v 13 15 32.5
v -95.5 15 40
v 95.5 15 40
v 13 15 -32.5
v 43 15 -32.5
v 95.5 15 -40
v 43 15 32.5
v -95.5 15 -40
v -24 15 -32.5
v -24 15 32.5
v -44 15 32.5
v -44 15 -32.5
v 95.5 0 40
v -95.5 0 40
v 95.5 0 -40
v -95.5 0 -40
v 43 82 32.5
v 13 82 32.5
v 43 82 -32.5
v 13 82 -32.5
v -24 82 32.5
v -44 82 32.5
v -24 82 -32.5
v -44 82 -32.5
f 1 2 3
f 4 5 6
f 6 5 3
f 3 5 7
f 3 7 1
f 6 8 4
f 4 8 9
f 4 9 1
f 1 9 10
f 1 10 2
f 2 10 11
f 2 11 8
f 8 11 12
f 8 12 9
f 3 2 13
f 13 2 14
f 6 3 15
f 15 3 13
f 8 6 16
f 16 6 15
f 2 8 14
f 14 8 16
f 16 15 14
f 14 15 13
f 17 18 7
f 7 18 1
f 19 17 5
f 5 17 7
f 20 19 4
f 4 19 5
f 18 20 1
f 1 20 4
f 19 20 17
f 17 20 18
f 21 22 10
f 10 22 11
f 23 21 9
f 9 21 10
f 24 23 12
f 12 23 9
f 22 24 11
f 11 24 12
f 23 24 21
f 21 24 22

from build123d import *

# Parameters (mm, degrees)
SKIZZE1_R                       = 40
AUFSATZ_LINEAR_AUSTRAGEN1_DEPTH = 15
SKIZZE2_W                       = 30
SKIZZE2_H                       = 65
SKIZZE2_W_2                     = 20
AUFSATZ_LINEAR_AUSTRAGEN2_DEPTH = 67


with BuildPart() as part:
    # Skizze1 → Aufsatz-Linear austragen1 (new body)
    with BuildSketch(Plane(origin=(0, 0, 0), x_dir=(1, 0, 0), z_dir=(0, 1, 0))):
        with BuildLine():
            Line((-95.5, 40), (-95.5, -40))
            Line((-95.5, -40), (55.5, -40))
            ThreePointArc((55.5, -40), (15.5, 0), (55.5, 40))
            Line((55.5, 40), (-95.5, 40))
        make_face()
        with Locations((55.5, 0)):
            Circle(SKIZZE1_R)
        with BuildLine():
            Line((95.5, 40), (55.5, 40))
            ThreePointArc((55.5, 40), (83.784271247, 28.284271247), (95.5, 0))
            Line((95.5, 0), (95.5, 40))
        make_face()
        with BuildLine():
            ThreePointArc((95.5, 0), (83.784271247, -28.284271247), (55.5, -40))
            Line((55.5, -40), (95.5, -40))
            Line((95.5, -40), (95.5, 0))
        make_face()
    extrude(amount=AUFSATZ_LINEAR_AUSTRAGEN1_DEPTH)

    # Skizze2 → Aufsatz-Linear austragen2 (add)
    with BuildSketch(Plane(origin=(0, 15, 0), x_dir=(1, 0, 0), z_dir=(0, 1, 0))):
        with Locations((28, 0)):
            Rectangle(SKIZZE2_W, SKIZZE2_H)
        with Locations((-34, 0)):
            Rectangle(SKIZZE2_W_2, SKIZZE2_H)
    extrude(amount=AUFSATZ_LINEAR_AUSTRAGEN2_DEPTH)


solid = part.part
